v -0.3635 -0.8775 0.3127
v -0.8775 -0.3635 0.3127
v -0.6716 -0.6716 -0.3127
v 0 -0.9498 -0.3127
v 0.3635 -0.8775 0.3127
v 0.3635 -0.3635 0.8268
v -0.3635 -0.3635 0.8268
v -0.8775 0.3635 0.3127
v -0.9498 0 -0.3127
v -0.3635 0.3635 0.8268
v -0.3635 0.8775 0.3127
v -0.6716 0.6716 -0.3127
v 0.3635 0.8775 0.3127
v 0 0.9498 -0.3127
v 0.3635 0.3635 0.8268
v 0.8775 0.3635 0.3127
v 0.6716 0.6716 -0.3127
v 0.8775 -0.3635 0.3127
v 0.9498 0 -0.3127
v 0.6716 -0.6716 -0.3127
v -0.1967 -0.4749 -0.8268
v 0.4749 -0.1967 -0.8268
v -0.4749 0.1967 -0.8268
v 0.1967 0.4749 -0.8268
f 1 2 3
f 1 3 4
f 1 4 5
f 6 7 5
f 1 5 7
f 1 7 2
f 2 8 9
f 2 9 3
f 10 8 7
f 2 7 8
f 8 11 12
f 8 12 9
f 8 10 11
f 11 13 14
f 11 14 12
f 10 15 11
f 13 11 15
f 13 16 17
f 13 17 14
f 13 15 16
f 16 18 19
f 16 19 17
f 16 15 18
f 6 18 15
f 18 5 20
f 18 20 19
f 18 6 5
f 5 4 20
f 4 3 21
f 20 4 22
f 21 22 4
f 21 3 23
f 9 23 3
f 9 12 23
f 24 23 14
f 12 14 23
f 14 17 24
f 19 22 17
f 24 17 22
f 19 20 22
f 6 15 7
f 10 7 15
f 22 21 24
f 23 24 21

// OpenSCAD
polyhedron( points = [[-0.363491341888162, -0.877545727857683, 0.312709991184577], [-0.877545727758171, -0.363491341918436, 0.312709991184577], [-0.877545728040722, 0.363491342425259, 0.312709991184577], [-0.363491342570304, 0.877545728318348, 0.312709991184577], [0.363491341458206, 0.877545728318348, 0.312709991184577], [0.877545727374381, 0.363491342425267, 0.312709991184577], [0.877545727722199, -0.363491341918438, 0.312709991184577], [0.363491342297942, -0.877545727857683, 0.312709991184577], [2.2373420194589e-10, -0.949848651182538, -0.312709991386605], [-0.6716444221893, -0.67164442226499, -0.312709991386605], [-0.949848651092061, -7.66691085503862e-11, -0.312709991313669], [-0.671644422311676, 0.671644421978063, -0.312709991210522], [5.06745036247881e-11, 0.949848650573116, -0.312709991137586], [0.671644422488687, 0.671644421715877, -0.312709991137586], [0.949848651451754, -4.47459364227137e-10, -0.312709991210522], [0.671644422731681, -0.671644422527179, -0.312709991313669], [-0.363491341855522, -0.363491341705512, 0.826764376841662], [0.363491342133586, -0.363491341890967, 0.826764376656208], [0.363491341621793, 0.363491342369543, 0.82676437690694], [-0.363491342314791, 0.363491342342892, 0.82676437690694], [0.474924325595567, -0.196720096862226, -0.826764376686628], [-0.196720096659413, -0.474924325613537, -0.826764376574105], [-0.474924325378851, 0.196720096560677, -0.826764376751903], [0.19672009690877, 0.474924325095928, -0.826764376678965]], faces = [[0, 1, 9], [0, 9, 8], [0, 8, 7], [0, 7, 17, 16], [0, 16, 1], [1, 2, 10], [1, 10, 9], [1, 16, 19, 2], [2, 3, 11], [2, 11, 10], [2, 19, 3], [3, 4, 12], [3, 12, 11], [3, 19, 18, 4], [4, 5, 13], [4, 13, 12], [4, 18, 5], [5, 6, 14], [5, 14, 13], [5, 18, 17, 6], [6, 7, 15], [6, 15, 14], [6, 17, 7], [7, 8, 15], [8, 9, 21], [8, 21, 20, 15], [9, 10, 22, 21], [10, 11, 22], [11, 12, 23, 22], [12, 13, 23], [13, 14, 20, 23], [14, 15, 20], [16, 17, 18, 19], [20, 21, 22, 23]]);
